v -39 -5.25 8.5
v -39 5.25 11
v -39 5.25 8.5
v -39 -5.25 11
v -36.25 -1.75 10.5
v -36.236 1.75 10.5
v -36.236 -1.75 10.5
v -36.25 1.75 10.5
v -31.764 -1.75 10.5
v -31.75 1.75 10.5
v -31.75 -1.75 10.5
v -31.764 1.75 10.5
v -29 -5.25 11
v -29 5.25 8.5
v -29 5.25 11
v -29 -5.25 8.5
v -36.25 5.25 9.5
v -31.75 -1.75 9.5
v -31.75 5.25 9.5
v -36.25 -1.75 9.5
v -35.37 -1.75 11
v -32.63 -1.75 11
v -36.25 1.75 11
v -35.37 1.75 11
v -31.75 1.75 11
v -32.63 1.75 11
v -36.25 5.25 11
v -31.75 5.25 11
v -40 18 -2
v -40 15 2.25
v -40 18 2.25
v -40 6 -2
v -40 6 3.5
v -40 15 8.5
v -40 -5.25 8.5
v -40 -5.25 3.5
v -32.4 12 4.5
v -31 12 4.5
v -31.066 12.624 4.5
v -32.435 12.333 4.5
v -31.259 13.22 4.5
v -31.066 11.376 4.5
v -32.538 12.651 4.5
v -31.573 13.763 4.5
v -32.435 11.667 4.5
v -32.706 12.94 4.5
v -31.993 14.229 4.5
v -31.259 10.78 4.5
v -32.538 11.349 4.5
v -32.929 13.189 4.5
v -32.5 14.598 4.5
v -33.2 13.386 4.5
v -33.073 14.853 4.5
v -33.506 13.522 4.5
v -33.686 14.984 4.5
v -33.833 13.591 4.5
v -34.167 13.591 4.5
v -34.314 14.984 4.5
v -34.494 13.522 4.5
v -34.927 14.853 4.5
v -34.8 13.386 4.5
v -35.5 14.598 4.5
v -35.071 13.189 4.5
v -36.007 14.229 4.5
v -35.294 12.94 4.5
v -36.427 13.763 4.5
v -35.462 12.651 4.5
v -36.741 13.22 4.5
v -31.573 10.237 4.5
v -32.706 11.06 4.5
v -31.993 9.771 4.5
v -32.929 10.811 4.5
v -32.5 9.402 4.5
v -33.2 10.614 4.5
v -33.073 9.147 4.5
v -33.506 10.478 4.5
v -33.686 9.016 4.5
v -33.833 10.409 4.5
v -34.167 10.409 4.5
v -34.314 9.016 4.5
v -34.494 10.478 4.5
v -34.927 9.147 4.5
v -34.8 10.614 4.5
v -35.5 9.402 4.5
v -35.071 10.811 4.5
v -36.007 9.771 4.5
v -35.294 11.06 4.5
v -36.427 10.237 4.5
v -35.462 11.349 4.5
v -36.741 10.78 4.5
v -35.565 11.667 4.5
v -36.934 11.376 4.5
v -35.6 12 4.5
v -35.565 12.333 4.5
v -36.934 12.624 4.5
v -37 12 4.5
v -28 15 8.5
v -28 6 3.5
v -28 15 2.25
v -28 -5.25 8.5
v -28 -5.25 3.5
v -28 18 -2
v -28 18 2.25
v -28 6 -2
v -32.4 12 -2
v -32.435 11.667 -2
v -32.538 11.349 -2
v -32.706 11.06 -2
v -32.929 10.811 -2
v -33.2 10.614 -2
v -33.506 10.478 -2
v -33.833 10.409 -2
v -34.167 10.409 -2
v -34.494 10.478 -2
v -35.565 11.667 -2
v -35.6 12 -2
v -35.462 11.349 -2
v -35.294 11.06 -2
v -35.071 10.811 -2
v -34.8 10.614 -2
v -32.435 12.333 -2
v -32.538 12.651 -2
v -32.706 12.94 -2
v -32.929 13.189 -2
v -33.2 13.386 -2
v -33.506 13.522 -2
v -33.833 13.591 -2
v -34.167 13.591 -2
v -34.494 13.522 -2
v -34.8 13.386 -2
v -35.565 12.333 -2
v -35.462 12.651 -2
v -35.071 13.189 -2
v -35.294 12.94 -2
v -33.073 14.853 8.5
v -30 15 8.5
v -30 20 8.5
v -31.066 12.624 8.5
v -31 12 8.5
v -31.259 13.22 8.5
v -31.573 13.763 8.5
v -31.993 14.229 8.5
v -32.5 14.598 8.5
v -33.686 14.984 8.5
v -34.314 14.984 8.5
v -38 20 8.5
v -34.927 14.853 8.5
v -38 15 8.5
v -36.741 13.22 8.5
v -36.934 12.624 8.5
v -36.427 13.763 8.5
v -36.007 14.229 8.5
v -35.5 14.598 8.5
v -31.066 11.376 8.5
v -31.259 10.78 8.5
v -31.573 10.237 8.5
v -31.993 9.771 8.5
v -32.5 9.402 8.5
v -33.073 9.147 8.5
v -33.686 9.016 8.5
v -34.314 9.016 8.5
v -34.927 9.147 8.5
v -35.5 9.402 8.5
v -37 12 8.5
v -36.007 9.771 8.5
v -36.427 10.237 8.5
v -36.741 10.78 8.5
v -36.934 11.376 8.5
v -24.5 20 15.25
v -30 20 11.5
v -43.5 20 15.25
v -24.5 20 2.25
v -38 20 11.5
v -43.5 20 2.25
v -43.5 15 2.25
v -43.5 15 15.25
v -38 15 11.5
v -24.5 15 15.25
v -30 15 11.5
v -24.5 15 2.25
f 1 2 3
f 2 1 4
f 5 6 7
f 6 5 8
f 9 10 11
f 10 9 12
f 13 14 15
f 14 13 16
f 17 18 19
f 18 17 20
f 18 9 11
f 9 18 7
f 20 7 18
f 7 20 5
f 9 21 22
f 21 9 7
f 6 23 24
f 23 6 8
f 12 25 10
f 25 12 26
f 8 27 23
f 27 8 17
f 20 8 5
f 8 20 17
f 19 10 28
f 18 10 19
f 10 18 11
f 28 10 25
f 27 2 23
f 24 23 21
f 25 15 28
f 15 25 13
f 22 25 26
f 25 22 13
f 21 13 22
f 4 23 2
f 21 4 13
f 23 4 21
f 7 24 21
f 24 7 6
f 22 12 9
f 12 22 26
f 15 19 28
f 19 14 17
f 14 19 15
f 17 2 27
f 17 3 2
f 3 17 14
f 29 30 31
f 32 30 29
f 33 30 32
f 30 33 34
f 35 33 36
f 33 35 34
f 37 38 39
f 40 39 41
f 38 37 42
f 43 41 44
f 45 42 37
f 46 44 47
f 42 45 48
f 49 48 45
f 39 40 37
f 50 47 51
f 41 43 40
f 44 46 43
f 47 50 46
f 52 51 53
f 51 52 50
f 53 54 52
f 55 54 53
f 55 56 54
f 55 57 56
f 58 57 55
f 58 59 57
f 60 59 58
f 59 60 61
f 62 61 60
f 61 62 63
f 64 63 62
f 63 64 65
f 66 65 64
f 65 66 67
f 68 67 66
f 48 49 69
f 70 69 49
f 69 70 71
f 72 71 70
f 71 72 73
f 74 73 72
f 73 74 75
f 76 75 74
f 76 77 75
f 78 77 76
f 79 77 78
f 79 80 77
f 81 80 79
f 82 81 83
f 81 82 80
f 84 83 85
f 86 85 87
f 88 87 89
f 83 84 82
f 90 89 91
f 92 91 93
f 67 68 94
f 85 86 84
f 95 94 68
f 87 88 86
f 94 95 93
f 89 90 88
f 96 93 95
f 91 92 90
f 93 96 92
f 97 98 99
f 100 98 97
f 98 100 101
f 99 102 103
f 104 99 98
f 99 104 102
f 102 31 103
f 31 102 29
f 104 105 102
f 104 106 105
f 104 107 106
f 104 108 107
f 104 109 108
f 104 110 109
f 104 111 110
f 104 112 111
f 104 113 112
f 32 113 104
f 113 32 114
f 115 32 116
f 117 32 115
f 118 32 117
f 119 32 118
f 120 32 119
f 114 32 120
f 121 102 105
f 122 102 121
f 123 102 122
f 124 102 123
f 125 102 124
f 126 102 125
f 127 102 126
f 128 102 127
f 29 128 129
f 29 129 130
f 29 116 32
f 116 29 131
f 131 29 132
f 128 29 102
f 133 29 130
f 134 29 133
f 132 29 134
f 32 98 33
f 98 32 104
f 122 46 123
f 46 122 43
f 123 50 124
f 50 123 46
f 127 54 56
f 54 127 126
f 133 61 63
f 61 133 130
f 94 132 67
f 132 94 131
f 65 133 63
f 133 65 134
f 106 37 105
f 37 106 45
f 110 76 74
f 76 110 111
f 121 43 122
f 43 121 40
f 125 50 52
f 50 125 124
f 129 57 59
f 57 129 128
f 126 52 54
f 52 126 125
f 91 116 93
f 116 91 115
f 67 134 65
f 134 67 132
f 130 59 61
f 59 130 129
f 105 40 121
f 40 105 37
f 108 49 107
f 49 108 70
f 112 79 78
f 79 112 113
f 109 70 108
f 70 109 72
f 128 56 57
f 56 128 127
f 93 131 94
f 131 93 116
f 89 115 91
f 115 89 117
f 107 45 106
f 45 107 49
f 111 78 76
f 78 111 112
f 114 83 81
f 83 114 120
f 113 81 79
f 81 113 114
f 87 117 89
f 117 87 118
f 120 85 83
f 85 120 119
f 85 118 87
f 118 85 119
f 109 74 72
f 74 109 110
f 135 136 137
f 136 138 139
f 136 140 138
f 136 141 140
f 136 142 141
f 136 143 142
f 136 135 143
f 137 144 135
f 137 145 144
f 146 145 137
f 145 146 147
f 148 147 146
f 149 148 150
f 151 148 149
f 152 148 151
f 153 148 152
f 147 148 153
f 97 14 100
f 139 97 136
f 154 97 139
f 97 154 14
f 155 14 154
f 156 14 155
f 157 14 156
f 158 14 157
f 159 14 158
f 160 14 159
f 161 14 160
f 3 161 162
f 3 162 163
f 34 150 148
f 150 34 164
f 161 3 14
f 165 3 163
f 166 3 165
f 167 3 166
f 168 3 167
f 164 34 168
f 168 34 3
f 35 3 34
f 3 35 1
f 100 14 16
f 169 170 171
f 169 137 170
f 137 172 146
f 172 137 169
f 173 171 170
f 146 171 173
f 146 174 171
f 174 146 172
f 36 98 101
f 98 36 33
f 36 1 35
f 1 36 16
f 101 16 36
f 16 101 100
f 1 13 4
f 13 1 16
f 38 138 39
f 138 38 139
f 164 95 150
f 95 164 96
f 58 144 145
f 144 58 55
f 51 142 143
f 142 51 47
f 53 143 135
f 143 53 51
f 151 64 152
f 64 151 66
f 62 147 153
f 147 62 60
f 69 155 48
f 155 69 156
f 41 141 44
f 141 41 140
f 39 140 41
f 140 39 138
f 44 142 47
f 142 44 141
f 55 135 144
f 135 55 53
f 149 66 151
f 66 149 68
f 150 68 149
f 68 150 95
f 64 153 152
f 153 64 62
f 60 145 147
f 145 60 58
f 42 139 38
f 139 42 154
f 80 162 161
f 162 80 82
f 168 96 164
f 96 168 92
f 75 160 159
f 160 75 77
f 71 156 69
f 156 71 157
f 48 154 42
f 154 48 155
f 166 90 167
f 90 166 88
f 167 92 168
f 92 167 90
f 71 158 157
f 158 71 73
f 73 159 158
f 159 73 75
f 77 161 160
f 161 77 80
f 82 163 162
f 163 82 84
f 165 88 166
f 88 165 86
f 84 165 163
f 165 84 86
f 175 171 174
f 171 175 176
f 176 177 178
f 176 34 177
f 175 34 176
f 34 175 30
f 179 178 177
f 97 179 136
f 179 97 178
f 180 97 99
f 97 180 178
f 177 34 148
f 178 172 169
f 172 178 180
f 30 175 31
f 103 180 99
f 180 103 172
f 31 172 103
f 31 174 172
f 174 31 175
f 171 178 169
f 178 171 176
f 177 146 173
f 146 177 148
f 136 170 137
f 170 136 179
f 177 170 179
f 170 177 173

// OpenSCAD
hallEffectSensor();







module hallEffectSensor(){

///////////////////////////////////////////////////////////////
//Tob hall effect sensor box
//////////////////////////////////////////////////////////////
translate([0,0,0]){
difference(){
translate([-34,0,10]) cube([10,3.5,1], center = true);

translate([-34,0,10]) cube([4+0.5,4,1], center = true);  
}    

difference(){
translate([-34,0,10+0.5+0.25]) cube([10,3.5,0.5], center = true);


translate([-34,0,5.4+0.3]) rotate([0,60,0]) cube([10.55,4,6], center = true);  
    
translate([-34,0,5.4+0.3]) rotate([0,-60,0]) cube([10.55,4,6], center = true);      
}  


translate([-34,-3.5,10+0.25]) cube([10,3.5,1.5], center = true);

difference(){
translate([-34,3.5,10+0.25]) cube([10,3.5,1.5], center = true);

translate([-34,0,10+0.25]) cube([4+0.5,15,1.5], center = true); 

}


translate([-34,0,10-1.25]) cube([10,10.5,1.5], center = true);


//end of hall effect sensor box






difference(){
translate([-34,12,4.5-2-1.25]) cube([12,12,8-4+2.5], center = true);

//hole through baseplate
translate([-34,12,-8]) rotate([0,0,0]) cylinder(h = 25, d=3.2, $fn = 30, center = true);


}







difference(){
    
//baseplate    
translate([-34,7.375,6]) cube([12,40-14.75,5], center = true);

translate([-34,12,6]) rotate([0,0,0]) cylinder(h = 6, d=6, $fn = 30, center = true);    
}}


///////////////////////////////////////////////////////////////







//bottom mount

translate([-34,-1.75,11.5])rotate([90,0,0]){
difference(){  
translate([0,-1.5-1.25,-19.25])cube(size = [15+4,8+5,5], center = true);

translate([0,-1.5,0]) cube(size = [8,3,100], center = true);
}

}









}
